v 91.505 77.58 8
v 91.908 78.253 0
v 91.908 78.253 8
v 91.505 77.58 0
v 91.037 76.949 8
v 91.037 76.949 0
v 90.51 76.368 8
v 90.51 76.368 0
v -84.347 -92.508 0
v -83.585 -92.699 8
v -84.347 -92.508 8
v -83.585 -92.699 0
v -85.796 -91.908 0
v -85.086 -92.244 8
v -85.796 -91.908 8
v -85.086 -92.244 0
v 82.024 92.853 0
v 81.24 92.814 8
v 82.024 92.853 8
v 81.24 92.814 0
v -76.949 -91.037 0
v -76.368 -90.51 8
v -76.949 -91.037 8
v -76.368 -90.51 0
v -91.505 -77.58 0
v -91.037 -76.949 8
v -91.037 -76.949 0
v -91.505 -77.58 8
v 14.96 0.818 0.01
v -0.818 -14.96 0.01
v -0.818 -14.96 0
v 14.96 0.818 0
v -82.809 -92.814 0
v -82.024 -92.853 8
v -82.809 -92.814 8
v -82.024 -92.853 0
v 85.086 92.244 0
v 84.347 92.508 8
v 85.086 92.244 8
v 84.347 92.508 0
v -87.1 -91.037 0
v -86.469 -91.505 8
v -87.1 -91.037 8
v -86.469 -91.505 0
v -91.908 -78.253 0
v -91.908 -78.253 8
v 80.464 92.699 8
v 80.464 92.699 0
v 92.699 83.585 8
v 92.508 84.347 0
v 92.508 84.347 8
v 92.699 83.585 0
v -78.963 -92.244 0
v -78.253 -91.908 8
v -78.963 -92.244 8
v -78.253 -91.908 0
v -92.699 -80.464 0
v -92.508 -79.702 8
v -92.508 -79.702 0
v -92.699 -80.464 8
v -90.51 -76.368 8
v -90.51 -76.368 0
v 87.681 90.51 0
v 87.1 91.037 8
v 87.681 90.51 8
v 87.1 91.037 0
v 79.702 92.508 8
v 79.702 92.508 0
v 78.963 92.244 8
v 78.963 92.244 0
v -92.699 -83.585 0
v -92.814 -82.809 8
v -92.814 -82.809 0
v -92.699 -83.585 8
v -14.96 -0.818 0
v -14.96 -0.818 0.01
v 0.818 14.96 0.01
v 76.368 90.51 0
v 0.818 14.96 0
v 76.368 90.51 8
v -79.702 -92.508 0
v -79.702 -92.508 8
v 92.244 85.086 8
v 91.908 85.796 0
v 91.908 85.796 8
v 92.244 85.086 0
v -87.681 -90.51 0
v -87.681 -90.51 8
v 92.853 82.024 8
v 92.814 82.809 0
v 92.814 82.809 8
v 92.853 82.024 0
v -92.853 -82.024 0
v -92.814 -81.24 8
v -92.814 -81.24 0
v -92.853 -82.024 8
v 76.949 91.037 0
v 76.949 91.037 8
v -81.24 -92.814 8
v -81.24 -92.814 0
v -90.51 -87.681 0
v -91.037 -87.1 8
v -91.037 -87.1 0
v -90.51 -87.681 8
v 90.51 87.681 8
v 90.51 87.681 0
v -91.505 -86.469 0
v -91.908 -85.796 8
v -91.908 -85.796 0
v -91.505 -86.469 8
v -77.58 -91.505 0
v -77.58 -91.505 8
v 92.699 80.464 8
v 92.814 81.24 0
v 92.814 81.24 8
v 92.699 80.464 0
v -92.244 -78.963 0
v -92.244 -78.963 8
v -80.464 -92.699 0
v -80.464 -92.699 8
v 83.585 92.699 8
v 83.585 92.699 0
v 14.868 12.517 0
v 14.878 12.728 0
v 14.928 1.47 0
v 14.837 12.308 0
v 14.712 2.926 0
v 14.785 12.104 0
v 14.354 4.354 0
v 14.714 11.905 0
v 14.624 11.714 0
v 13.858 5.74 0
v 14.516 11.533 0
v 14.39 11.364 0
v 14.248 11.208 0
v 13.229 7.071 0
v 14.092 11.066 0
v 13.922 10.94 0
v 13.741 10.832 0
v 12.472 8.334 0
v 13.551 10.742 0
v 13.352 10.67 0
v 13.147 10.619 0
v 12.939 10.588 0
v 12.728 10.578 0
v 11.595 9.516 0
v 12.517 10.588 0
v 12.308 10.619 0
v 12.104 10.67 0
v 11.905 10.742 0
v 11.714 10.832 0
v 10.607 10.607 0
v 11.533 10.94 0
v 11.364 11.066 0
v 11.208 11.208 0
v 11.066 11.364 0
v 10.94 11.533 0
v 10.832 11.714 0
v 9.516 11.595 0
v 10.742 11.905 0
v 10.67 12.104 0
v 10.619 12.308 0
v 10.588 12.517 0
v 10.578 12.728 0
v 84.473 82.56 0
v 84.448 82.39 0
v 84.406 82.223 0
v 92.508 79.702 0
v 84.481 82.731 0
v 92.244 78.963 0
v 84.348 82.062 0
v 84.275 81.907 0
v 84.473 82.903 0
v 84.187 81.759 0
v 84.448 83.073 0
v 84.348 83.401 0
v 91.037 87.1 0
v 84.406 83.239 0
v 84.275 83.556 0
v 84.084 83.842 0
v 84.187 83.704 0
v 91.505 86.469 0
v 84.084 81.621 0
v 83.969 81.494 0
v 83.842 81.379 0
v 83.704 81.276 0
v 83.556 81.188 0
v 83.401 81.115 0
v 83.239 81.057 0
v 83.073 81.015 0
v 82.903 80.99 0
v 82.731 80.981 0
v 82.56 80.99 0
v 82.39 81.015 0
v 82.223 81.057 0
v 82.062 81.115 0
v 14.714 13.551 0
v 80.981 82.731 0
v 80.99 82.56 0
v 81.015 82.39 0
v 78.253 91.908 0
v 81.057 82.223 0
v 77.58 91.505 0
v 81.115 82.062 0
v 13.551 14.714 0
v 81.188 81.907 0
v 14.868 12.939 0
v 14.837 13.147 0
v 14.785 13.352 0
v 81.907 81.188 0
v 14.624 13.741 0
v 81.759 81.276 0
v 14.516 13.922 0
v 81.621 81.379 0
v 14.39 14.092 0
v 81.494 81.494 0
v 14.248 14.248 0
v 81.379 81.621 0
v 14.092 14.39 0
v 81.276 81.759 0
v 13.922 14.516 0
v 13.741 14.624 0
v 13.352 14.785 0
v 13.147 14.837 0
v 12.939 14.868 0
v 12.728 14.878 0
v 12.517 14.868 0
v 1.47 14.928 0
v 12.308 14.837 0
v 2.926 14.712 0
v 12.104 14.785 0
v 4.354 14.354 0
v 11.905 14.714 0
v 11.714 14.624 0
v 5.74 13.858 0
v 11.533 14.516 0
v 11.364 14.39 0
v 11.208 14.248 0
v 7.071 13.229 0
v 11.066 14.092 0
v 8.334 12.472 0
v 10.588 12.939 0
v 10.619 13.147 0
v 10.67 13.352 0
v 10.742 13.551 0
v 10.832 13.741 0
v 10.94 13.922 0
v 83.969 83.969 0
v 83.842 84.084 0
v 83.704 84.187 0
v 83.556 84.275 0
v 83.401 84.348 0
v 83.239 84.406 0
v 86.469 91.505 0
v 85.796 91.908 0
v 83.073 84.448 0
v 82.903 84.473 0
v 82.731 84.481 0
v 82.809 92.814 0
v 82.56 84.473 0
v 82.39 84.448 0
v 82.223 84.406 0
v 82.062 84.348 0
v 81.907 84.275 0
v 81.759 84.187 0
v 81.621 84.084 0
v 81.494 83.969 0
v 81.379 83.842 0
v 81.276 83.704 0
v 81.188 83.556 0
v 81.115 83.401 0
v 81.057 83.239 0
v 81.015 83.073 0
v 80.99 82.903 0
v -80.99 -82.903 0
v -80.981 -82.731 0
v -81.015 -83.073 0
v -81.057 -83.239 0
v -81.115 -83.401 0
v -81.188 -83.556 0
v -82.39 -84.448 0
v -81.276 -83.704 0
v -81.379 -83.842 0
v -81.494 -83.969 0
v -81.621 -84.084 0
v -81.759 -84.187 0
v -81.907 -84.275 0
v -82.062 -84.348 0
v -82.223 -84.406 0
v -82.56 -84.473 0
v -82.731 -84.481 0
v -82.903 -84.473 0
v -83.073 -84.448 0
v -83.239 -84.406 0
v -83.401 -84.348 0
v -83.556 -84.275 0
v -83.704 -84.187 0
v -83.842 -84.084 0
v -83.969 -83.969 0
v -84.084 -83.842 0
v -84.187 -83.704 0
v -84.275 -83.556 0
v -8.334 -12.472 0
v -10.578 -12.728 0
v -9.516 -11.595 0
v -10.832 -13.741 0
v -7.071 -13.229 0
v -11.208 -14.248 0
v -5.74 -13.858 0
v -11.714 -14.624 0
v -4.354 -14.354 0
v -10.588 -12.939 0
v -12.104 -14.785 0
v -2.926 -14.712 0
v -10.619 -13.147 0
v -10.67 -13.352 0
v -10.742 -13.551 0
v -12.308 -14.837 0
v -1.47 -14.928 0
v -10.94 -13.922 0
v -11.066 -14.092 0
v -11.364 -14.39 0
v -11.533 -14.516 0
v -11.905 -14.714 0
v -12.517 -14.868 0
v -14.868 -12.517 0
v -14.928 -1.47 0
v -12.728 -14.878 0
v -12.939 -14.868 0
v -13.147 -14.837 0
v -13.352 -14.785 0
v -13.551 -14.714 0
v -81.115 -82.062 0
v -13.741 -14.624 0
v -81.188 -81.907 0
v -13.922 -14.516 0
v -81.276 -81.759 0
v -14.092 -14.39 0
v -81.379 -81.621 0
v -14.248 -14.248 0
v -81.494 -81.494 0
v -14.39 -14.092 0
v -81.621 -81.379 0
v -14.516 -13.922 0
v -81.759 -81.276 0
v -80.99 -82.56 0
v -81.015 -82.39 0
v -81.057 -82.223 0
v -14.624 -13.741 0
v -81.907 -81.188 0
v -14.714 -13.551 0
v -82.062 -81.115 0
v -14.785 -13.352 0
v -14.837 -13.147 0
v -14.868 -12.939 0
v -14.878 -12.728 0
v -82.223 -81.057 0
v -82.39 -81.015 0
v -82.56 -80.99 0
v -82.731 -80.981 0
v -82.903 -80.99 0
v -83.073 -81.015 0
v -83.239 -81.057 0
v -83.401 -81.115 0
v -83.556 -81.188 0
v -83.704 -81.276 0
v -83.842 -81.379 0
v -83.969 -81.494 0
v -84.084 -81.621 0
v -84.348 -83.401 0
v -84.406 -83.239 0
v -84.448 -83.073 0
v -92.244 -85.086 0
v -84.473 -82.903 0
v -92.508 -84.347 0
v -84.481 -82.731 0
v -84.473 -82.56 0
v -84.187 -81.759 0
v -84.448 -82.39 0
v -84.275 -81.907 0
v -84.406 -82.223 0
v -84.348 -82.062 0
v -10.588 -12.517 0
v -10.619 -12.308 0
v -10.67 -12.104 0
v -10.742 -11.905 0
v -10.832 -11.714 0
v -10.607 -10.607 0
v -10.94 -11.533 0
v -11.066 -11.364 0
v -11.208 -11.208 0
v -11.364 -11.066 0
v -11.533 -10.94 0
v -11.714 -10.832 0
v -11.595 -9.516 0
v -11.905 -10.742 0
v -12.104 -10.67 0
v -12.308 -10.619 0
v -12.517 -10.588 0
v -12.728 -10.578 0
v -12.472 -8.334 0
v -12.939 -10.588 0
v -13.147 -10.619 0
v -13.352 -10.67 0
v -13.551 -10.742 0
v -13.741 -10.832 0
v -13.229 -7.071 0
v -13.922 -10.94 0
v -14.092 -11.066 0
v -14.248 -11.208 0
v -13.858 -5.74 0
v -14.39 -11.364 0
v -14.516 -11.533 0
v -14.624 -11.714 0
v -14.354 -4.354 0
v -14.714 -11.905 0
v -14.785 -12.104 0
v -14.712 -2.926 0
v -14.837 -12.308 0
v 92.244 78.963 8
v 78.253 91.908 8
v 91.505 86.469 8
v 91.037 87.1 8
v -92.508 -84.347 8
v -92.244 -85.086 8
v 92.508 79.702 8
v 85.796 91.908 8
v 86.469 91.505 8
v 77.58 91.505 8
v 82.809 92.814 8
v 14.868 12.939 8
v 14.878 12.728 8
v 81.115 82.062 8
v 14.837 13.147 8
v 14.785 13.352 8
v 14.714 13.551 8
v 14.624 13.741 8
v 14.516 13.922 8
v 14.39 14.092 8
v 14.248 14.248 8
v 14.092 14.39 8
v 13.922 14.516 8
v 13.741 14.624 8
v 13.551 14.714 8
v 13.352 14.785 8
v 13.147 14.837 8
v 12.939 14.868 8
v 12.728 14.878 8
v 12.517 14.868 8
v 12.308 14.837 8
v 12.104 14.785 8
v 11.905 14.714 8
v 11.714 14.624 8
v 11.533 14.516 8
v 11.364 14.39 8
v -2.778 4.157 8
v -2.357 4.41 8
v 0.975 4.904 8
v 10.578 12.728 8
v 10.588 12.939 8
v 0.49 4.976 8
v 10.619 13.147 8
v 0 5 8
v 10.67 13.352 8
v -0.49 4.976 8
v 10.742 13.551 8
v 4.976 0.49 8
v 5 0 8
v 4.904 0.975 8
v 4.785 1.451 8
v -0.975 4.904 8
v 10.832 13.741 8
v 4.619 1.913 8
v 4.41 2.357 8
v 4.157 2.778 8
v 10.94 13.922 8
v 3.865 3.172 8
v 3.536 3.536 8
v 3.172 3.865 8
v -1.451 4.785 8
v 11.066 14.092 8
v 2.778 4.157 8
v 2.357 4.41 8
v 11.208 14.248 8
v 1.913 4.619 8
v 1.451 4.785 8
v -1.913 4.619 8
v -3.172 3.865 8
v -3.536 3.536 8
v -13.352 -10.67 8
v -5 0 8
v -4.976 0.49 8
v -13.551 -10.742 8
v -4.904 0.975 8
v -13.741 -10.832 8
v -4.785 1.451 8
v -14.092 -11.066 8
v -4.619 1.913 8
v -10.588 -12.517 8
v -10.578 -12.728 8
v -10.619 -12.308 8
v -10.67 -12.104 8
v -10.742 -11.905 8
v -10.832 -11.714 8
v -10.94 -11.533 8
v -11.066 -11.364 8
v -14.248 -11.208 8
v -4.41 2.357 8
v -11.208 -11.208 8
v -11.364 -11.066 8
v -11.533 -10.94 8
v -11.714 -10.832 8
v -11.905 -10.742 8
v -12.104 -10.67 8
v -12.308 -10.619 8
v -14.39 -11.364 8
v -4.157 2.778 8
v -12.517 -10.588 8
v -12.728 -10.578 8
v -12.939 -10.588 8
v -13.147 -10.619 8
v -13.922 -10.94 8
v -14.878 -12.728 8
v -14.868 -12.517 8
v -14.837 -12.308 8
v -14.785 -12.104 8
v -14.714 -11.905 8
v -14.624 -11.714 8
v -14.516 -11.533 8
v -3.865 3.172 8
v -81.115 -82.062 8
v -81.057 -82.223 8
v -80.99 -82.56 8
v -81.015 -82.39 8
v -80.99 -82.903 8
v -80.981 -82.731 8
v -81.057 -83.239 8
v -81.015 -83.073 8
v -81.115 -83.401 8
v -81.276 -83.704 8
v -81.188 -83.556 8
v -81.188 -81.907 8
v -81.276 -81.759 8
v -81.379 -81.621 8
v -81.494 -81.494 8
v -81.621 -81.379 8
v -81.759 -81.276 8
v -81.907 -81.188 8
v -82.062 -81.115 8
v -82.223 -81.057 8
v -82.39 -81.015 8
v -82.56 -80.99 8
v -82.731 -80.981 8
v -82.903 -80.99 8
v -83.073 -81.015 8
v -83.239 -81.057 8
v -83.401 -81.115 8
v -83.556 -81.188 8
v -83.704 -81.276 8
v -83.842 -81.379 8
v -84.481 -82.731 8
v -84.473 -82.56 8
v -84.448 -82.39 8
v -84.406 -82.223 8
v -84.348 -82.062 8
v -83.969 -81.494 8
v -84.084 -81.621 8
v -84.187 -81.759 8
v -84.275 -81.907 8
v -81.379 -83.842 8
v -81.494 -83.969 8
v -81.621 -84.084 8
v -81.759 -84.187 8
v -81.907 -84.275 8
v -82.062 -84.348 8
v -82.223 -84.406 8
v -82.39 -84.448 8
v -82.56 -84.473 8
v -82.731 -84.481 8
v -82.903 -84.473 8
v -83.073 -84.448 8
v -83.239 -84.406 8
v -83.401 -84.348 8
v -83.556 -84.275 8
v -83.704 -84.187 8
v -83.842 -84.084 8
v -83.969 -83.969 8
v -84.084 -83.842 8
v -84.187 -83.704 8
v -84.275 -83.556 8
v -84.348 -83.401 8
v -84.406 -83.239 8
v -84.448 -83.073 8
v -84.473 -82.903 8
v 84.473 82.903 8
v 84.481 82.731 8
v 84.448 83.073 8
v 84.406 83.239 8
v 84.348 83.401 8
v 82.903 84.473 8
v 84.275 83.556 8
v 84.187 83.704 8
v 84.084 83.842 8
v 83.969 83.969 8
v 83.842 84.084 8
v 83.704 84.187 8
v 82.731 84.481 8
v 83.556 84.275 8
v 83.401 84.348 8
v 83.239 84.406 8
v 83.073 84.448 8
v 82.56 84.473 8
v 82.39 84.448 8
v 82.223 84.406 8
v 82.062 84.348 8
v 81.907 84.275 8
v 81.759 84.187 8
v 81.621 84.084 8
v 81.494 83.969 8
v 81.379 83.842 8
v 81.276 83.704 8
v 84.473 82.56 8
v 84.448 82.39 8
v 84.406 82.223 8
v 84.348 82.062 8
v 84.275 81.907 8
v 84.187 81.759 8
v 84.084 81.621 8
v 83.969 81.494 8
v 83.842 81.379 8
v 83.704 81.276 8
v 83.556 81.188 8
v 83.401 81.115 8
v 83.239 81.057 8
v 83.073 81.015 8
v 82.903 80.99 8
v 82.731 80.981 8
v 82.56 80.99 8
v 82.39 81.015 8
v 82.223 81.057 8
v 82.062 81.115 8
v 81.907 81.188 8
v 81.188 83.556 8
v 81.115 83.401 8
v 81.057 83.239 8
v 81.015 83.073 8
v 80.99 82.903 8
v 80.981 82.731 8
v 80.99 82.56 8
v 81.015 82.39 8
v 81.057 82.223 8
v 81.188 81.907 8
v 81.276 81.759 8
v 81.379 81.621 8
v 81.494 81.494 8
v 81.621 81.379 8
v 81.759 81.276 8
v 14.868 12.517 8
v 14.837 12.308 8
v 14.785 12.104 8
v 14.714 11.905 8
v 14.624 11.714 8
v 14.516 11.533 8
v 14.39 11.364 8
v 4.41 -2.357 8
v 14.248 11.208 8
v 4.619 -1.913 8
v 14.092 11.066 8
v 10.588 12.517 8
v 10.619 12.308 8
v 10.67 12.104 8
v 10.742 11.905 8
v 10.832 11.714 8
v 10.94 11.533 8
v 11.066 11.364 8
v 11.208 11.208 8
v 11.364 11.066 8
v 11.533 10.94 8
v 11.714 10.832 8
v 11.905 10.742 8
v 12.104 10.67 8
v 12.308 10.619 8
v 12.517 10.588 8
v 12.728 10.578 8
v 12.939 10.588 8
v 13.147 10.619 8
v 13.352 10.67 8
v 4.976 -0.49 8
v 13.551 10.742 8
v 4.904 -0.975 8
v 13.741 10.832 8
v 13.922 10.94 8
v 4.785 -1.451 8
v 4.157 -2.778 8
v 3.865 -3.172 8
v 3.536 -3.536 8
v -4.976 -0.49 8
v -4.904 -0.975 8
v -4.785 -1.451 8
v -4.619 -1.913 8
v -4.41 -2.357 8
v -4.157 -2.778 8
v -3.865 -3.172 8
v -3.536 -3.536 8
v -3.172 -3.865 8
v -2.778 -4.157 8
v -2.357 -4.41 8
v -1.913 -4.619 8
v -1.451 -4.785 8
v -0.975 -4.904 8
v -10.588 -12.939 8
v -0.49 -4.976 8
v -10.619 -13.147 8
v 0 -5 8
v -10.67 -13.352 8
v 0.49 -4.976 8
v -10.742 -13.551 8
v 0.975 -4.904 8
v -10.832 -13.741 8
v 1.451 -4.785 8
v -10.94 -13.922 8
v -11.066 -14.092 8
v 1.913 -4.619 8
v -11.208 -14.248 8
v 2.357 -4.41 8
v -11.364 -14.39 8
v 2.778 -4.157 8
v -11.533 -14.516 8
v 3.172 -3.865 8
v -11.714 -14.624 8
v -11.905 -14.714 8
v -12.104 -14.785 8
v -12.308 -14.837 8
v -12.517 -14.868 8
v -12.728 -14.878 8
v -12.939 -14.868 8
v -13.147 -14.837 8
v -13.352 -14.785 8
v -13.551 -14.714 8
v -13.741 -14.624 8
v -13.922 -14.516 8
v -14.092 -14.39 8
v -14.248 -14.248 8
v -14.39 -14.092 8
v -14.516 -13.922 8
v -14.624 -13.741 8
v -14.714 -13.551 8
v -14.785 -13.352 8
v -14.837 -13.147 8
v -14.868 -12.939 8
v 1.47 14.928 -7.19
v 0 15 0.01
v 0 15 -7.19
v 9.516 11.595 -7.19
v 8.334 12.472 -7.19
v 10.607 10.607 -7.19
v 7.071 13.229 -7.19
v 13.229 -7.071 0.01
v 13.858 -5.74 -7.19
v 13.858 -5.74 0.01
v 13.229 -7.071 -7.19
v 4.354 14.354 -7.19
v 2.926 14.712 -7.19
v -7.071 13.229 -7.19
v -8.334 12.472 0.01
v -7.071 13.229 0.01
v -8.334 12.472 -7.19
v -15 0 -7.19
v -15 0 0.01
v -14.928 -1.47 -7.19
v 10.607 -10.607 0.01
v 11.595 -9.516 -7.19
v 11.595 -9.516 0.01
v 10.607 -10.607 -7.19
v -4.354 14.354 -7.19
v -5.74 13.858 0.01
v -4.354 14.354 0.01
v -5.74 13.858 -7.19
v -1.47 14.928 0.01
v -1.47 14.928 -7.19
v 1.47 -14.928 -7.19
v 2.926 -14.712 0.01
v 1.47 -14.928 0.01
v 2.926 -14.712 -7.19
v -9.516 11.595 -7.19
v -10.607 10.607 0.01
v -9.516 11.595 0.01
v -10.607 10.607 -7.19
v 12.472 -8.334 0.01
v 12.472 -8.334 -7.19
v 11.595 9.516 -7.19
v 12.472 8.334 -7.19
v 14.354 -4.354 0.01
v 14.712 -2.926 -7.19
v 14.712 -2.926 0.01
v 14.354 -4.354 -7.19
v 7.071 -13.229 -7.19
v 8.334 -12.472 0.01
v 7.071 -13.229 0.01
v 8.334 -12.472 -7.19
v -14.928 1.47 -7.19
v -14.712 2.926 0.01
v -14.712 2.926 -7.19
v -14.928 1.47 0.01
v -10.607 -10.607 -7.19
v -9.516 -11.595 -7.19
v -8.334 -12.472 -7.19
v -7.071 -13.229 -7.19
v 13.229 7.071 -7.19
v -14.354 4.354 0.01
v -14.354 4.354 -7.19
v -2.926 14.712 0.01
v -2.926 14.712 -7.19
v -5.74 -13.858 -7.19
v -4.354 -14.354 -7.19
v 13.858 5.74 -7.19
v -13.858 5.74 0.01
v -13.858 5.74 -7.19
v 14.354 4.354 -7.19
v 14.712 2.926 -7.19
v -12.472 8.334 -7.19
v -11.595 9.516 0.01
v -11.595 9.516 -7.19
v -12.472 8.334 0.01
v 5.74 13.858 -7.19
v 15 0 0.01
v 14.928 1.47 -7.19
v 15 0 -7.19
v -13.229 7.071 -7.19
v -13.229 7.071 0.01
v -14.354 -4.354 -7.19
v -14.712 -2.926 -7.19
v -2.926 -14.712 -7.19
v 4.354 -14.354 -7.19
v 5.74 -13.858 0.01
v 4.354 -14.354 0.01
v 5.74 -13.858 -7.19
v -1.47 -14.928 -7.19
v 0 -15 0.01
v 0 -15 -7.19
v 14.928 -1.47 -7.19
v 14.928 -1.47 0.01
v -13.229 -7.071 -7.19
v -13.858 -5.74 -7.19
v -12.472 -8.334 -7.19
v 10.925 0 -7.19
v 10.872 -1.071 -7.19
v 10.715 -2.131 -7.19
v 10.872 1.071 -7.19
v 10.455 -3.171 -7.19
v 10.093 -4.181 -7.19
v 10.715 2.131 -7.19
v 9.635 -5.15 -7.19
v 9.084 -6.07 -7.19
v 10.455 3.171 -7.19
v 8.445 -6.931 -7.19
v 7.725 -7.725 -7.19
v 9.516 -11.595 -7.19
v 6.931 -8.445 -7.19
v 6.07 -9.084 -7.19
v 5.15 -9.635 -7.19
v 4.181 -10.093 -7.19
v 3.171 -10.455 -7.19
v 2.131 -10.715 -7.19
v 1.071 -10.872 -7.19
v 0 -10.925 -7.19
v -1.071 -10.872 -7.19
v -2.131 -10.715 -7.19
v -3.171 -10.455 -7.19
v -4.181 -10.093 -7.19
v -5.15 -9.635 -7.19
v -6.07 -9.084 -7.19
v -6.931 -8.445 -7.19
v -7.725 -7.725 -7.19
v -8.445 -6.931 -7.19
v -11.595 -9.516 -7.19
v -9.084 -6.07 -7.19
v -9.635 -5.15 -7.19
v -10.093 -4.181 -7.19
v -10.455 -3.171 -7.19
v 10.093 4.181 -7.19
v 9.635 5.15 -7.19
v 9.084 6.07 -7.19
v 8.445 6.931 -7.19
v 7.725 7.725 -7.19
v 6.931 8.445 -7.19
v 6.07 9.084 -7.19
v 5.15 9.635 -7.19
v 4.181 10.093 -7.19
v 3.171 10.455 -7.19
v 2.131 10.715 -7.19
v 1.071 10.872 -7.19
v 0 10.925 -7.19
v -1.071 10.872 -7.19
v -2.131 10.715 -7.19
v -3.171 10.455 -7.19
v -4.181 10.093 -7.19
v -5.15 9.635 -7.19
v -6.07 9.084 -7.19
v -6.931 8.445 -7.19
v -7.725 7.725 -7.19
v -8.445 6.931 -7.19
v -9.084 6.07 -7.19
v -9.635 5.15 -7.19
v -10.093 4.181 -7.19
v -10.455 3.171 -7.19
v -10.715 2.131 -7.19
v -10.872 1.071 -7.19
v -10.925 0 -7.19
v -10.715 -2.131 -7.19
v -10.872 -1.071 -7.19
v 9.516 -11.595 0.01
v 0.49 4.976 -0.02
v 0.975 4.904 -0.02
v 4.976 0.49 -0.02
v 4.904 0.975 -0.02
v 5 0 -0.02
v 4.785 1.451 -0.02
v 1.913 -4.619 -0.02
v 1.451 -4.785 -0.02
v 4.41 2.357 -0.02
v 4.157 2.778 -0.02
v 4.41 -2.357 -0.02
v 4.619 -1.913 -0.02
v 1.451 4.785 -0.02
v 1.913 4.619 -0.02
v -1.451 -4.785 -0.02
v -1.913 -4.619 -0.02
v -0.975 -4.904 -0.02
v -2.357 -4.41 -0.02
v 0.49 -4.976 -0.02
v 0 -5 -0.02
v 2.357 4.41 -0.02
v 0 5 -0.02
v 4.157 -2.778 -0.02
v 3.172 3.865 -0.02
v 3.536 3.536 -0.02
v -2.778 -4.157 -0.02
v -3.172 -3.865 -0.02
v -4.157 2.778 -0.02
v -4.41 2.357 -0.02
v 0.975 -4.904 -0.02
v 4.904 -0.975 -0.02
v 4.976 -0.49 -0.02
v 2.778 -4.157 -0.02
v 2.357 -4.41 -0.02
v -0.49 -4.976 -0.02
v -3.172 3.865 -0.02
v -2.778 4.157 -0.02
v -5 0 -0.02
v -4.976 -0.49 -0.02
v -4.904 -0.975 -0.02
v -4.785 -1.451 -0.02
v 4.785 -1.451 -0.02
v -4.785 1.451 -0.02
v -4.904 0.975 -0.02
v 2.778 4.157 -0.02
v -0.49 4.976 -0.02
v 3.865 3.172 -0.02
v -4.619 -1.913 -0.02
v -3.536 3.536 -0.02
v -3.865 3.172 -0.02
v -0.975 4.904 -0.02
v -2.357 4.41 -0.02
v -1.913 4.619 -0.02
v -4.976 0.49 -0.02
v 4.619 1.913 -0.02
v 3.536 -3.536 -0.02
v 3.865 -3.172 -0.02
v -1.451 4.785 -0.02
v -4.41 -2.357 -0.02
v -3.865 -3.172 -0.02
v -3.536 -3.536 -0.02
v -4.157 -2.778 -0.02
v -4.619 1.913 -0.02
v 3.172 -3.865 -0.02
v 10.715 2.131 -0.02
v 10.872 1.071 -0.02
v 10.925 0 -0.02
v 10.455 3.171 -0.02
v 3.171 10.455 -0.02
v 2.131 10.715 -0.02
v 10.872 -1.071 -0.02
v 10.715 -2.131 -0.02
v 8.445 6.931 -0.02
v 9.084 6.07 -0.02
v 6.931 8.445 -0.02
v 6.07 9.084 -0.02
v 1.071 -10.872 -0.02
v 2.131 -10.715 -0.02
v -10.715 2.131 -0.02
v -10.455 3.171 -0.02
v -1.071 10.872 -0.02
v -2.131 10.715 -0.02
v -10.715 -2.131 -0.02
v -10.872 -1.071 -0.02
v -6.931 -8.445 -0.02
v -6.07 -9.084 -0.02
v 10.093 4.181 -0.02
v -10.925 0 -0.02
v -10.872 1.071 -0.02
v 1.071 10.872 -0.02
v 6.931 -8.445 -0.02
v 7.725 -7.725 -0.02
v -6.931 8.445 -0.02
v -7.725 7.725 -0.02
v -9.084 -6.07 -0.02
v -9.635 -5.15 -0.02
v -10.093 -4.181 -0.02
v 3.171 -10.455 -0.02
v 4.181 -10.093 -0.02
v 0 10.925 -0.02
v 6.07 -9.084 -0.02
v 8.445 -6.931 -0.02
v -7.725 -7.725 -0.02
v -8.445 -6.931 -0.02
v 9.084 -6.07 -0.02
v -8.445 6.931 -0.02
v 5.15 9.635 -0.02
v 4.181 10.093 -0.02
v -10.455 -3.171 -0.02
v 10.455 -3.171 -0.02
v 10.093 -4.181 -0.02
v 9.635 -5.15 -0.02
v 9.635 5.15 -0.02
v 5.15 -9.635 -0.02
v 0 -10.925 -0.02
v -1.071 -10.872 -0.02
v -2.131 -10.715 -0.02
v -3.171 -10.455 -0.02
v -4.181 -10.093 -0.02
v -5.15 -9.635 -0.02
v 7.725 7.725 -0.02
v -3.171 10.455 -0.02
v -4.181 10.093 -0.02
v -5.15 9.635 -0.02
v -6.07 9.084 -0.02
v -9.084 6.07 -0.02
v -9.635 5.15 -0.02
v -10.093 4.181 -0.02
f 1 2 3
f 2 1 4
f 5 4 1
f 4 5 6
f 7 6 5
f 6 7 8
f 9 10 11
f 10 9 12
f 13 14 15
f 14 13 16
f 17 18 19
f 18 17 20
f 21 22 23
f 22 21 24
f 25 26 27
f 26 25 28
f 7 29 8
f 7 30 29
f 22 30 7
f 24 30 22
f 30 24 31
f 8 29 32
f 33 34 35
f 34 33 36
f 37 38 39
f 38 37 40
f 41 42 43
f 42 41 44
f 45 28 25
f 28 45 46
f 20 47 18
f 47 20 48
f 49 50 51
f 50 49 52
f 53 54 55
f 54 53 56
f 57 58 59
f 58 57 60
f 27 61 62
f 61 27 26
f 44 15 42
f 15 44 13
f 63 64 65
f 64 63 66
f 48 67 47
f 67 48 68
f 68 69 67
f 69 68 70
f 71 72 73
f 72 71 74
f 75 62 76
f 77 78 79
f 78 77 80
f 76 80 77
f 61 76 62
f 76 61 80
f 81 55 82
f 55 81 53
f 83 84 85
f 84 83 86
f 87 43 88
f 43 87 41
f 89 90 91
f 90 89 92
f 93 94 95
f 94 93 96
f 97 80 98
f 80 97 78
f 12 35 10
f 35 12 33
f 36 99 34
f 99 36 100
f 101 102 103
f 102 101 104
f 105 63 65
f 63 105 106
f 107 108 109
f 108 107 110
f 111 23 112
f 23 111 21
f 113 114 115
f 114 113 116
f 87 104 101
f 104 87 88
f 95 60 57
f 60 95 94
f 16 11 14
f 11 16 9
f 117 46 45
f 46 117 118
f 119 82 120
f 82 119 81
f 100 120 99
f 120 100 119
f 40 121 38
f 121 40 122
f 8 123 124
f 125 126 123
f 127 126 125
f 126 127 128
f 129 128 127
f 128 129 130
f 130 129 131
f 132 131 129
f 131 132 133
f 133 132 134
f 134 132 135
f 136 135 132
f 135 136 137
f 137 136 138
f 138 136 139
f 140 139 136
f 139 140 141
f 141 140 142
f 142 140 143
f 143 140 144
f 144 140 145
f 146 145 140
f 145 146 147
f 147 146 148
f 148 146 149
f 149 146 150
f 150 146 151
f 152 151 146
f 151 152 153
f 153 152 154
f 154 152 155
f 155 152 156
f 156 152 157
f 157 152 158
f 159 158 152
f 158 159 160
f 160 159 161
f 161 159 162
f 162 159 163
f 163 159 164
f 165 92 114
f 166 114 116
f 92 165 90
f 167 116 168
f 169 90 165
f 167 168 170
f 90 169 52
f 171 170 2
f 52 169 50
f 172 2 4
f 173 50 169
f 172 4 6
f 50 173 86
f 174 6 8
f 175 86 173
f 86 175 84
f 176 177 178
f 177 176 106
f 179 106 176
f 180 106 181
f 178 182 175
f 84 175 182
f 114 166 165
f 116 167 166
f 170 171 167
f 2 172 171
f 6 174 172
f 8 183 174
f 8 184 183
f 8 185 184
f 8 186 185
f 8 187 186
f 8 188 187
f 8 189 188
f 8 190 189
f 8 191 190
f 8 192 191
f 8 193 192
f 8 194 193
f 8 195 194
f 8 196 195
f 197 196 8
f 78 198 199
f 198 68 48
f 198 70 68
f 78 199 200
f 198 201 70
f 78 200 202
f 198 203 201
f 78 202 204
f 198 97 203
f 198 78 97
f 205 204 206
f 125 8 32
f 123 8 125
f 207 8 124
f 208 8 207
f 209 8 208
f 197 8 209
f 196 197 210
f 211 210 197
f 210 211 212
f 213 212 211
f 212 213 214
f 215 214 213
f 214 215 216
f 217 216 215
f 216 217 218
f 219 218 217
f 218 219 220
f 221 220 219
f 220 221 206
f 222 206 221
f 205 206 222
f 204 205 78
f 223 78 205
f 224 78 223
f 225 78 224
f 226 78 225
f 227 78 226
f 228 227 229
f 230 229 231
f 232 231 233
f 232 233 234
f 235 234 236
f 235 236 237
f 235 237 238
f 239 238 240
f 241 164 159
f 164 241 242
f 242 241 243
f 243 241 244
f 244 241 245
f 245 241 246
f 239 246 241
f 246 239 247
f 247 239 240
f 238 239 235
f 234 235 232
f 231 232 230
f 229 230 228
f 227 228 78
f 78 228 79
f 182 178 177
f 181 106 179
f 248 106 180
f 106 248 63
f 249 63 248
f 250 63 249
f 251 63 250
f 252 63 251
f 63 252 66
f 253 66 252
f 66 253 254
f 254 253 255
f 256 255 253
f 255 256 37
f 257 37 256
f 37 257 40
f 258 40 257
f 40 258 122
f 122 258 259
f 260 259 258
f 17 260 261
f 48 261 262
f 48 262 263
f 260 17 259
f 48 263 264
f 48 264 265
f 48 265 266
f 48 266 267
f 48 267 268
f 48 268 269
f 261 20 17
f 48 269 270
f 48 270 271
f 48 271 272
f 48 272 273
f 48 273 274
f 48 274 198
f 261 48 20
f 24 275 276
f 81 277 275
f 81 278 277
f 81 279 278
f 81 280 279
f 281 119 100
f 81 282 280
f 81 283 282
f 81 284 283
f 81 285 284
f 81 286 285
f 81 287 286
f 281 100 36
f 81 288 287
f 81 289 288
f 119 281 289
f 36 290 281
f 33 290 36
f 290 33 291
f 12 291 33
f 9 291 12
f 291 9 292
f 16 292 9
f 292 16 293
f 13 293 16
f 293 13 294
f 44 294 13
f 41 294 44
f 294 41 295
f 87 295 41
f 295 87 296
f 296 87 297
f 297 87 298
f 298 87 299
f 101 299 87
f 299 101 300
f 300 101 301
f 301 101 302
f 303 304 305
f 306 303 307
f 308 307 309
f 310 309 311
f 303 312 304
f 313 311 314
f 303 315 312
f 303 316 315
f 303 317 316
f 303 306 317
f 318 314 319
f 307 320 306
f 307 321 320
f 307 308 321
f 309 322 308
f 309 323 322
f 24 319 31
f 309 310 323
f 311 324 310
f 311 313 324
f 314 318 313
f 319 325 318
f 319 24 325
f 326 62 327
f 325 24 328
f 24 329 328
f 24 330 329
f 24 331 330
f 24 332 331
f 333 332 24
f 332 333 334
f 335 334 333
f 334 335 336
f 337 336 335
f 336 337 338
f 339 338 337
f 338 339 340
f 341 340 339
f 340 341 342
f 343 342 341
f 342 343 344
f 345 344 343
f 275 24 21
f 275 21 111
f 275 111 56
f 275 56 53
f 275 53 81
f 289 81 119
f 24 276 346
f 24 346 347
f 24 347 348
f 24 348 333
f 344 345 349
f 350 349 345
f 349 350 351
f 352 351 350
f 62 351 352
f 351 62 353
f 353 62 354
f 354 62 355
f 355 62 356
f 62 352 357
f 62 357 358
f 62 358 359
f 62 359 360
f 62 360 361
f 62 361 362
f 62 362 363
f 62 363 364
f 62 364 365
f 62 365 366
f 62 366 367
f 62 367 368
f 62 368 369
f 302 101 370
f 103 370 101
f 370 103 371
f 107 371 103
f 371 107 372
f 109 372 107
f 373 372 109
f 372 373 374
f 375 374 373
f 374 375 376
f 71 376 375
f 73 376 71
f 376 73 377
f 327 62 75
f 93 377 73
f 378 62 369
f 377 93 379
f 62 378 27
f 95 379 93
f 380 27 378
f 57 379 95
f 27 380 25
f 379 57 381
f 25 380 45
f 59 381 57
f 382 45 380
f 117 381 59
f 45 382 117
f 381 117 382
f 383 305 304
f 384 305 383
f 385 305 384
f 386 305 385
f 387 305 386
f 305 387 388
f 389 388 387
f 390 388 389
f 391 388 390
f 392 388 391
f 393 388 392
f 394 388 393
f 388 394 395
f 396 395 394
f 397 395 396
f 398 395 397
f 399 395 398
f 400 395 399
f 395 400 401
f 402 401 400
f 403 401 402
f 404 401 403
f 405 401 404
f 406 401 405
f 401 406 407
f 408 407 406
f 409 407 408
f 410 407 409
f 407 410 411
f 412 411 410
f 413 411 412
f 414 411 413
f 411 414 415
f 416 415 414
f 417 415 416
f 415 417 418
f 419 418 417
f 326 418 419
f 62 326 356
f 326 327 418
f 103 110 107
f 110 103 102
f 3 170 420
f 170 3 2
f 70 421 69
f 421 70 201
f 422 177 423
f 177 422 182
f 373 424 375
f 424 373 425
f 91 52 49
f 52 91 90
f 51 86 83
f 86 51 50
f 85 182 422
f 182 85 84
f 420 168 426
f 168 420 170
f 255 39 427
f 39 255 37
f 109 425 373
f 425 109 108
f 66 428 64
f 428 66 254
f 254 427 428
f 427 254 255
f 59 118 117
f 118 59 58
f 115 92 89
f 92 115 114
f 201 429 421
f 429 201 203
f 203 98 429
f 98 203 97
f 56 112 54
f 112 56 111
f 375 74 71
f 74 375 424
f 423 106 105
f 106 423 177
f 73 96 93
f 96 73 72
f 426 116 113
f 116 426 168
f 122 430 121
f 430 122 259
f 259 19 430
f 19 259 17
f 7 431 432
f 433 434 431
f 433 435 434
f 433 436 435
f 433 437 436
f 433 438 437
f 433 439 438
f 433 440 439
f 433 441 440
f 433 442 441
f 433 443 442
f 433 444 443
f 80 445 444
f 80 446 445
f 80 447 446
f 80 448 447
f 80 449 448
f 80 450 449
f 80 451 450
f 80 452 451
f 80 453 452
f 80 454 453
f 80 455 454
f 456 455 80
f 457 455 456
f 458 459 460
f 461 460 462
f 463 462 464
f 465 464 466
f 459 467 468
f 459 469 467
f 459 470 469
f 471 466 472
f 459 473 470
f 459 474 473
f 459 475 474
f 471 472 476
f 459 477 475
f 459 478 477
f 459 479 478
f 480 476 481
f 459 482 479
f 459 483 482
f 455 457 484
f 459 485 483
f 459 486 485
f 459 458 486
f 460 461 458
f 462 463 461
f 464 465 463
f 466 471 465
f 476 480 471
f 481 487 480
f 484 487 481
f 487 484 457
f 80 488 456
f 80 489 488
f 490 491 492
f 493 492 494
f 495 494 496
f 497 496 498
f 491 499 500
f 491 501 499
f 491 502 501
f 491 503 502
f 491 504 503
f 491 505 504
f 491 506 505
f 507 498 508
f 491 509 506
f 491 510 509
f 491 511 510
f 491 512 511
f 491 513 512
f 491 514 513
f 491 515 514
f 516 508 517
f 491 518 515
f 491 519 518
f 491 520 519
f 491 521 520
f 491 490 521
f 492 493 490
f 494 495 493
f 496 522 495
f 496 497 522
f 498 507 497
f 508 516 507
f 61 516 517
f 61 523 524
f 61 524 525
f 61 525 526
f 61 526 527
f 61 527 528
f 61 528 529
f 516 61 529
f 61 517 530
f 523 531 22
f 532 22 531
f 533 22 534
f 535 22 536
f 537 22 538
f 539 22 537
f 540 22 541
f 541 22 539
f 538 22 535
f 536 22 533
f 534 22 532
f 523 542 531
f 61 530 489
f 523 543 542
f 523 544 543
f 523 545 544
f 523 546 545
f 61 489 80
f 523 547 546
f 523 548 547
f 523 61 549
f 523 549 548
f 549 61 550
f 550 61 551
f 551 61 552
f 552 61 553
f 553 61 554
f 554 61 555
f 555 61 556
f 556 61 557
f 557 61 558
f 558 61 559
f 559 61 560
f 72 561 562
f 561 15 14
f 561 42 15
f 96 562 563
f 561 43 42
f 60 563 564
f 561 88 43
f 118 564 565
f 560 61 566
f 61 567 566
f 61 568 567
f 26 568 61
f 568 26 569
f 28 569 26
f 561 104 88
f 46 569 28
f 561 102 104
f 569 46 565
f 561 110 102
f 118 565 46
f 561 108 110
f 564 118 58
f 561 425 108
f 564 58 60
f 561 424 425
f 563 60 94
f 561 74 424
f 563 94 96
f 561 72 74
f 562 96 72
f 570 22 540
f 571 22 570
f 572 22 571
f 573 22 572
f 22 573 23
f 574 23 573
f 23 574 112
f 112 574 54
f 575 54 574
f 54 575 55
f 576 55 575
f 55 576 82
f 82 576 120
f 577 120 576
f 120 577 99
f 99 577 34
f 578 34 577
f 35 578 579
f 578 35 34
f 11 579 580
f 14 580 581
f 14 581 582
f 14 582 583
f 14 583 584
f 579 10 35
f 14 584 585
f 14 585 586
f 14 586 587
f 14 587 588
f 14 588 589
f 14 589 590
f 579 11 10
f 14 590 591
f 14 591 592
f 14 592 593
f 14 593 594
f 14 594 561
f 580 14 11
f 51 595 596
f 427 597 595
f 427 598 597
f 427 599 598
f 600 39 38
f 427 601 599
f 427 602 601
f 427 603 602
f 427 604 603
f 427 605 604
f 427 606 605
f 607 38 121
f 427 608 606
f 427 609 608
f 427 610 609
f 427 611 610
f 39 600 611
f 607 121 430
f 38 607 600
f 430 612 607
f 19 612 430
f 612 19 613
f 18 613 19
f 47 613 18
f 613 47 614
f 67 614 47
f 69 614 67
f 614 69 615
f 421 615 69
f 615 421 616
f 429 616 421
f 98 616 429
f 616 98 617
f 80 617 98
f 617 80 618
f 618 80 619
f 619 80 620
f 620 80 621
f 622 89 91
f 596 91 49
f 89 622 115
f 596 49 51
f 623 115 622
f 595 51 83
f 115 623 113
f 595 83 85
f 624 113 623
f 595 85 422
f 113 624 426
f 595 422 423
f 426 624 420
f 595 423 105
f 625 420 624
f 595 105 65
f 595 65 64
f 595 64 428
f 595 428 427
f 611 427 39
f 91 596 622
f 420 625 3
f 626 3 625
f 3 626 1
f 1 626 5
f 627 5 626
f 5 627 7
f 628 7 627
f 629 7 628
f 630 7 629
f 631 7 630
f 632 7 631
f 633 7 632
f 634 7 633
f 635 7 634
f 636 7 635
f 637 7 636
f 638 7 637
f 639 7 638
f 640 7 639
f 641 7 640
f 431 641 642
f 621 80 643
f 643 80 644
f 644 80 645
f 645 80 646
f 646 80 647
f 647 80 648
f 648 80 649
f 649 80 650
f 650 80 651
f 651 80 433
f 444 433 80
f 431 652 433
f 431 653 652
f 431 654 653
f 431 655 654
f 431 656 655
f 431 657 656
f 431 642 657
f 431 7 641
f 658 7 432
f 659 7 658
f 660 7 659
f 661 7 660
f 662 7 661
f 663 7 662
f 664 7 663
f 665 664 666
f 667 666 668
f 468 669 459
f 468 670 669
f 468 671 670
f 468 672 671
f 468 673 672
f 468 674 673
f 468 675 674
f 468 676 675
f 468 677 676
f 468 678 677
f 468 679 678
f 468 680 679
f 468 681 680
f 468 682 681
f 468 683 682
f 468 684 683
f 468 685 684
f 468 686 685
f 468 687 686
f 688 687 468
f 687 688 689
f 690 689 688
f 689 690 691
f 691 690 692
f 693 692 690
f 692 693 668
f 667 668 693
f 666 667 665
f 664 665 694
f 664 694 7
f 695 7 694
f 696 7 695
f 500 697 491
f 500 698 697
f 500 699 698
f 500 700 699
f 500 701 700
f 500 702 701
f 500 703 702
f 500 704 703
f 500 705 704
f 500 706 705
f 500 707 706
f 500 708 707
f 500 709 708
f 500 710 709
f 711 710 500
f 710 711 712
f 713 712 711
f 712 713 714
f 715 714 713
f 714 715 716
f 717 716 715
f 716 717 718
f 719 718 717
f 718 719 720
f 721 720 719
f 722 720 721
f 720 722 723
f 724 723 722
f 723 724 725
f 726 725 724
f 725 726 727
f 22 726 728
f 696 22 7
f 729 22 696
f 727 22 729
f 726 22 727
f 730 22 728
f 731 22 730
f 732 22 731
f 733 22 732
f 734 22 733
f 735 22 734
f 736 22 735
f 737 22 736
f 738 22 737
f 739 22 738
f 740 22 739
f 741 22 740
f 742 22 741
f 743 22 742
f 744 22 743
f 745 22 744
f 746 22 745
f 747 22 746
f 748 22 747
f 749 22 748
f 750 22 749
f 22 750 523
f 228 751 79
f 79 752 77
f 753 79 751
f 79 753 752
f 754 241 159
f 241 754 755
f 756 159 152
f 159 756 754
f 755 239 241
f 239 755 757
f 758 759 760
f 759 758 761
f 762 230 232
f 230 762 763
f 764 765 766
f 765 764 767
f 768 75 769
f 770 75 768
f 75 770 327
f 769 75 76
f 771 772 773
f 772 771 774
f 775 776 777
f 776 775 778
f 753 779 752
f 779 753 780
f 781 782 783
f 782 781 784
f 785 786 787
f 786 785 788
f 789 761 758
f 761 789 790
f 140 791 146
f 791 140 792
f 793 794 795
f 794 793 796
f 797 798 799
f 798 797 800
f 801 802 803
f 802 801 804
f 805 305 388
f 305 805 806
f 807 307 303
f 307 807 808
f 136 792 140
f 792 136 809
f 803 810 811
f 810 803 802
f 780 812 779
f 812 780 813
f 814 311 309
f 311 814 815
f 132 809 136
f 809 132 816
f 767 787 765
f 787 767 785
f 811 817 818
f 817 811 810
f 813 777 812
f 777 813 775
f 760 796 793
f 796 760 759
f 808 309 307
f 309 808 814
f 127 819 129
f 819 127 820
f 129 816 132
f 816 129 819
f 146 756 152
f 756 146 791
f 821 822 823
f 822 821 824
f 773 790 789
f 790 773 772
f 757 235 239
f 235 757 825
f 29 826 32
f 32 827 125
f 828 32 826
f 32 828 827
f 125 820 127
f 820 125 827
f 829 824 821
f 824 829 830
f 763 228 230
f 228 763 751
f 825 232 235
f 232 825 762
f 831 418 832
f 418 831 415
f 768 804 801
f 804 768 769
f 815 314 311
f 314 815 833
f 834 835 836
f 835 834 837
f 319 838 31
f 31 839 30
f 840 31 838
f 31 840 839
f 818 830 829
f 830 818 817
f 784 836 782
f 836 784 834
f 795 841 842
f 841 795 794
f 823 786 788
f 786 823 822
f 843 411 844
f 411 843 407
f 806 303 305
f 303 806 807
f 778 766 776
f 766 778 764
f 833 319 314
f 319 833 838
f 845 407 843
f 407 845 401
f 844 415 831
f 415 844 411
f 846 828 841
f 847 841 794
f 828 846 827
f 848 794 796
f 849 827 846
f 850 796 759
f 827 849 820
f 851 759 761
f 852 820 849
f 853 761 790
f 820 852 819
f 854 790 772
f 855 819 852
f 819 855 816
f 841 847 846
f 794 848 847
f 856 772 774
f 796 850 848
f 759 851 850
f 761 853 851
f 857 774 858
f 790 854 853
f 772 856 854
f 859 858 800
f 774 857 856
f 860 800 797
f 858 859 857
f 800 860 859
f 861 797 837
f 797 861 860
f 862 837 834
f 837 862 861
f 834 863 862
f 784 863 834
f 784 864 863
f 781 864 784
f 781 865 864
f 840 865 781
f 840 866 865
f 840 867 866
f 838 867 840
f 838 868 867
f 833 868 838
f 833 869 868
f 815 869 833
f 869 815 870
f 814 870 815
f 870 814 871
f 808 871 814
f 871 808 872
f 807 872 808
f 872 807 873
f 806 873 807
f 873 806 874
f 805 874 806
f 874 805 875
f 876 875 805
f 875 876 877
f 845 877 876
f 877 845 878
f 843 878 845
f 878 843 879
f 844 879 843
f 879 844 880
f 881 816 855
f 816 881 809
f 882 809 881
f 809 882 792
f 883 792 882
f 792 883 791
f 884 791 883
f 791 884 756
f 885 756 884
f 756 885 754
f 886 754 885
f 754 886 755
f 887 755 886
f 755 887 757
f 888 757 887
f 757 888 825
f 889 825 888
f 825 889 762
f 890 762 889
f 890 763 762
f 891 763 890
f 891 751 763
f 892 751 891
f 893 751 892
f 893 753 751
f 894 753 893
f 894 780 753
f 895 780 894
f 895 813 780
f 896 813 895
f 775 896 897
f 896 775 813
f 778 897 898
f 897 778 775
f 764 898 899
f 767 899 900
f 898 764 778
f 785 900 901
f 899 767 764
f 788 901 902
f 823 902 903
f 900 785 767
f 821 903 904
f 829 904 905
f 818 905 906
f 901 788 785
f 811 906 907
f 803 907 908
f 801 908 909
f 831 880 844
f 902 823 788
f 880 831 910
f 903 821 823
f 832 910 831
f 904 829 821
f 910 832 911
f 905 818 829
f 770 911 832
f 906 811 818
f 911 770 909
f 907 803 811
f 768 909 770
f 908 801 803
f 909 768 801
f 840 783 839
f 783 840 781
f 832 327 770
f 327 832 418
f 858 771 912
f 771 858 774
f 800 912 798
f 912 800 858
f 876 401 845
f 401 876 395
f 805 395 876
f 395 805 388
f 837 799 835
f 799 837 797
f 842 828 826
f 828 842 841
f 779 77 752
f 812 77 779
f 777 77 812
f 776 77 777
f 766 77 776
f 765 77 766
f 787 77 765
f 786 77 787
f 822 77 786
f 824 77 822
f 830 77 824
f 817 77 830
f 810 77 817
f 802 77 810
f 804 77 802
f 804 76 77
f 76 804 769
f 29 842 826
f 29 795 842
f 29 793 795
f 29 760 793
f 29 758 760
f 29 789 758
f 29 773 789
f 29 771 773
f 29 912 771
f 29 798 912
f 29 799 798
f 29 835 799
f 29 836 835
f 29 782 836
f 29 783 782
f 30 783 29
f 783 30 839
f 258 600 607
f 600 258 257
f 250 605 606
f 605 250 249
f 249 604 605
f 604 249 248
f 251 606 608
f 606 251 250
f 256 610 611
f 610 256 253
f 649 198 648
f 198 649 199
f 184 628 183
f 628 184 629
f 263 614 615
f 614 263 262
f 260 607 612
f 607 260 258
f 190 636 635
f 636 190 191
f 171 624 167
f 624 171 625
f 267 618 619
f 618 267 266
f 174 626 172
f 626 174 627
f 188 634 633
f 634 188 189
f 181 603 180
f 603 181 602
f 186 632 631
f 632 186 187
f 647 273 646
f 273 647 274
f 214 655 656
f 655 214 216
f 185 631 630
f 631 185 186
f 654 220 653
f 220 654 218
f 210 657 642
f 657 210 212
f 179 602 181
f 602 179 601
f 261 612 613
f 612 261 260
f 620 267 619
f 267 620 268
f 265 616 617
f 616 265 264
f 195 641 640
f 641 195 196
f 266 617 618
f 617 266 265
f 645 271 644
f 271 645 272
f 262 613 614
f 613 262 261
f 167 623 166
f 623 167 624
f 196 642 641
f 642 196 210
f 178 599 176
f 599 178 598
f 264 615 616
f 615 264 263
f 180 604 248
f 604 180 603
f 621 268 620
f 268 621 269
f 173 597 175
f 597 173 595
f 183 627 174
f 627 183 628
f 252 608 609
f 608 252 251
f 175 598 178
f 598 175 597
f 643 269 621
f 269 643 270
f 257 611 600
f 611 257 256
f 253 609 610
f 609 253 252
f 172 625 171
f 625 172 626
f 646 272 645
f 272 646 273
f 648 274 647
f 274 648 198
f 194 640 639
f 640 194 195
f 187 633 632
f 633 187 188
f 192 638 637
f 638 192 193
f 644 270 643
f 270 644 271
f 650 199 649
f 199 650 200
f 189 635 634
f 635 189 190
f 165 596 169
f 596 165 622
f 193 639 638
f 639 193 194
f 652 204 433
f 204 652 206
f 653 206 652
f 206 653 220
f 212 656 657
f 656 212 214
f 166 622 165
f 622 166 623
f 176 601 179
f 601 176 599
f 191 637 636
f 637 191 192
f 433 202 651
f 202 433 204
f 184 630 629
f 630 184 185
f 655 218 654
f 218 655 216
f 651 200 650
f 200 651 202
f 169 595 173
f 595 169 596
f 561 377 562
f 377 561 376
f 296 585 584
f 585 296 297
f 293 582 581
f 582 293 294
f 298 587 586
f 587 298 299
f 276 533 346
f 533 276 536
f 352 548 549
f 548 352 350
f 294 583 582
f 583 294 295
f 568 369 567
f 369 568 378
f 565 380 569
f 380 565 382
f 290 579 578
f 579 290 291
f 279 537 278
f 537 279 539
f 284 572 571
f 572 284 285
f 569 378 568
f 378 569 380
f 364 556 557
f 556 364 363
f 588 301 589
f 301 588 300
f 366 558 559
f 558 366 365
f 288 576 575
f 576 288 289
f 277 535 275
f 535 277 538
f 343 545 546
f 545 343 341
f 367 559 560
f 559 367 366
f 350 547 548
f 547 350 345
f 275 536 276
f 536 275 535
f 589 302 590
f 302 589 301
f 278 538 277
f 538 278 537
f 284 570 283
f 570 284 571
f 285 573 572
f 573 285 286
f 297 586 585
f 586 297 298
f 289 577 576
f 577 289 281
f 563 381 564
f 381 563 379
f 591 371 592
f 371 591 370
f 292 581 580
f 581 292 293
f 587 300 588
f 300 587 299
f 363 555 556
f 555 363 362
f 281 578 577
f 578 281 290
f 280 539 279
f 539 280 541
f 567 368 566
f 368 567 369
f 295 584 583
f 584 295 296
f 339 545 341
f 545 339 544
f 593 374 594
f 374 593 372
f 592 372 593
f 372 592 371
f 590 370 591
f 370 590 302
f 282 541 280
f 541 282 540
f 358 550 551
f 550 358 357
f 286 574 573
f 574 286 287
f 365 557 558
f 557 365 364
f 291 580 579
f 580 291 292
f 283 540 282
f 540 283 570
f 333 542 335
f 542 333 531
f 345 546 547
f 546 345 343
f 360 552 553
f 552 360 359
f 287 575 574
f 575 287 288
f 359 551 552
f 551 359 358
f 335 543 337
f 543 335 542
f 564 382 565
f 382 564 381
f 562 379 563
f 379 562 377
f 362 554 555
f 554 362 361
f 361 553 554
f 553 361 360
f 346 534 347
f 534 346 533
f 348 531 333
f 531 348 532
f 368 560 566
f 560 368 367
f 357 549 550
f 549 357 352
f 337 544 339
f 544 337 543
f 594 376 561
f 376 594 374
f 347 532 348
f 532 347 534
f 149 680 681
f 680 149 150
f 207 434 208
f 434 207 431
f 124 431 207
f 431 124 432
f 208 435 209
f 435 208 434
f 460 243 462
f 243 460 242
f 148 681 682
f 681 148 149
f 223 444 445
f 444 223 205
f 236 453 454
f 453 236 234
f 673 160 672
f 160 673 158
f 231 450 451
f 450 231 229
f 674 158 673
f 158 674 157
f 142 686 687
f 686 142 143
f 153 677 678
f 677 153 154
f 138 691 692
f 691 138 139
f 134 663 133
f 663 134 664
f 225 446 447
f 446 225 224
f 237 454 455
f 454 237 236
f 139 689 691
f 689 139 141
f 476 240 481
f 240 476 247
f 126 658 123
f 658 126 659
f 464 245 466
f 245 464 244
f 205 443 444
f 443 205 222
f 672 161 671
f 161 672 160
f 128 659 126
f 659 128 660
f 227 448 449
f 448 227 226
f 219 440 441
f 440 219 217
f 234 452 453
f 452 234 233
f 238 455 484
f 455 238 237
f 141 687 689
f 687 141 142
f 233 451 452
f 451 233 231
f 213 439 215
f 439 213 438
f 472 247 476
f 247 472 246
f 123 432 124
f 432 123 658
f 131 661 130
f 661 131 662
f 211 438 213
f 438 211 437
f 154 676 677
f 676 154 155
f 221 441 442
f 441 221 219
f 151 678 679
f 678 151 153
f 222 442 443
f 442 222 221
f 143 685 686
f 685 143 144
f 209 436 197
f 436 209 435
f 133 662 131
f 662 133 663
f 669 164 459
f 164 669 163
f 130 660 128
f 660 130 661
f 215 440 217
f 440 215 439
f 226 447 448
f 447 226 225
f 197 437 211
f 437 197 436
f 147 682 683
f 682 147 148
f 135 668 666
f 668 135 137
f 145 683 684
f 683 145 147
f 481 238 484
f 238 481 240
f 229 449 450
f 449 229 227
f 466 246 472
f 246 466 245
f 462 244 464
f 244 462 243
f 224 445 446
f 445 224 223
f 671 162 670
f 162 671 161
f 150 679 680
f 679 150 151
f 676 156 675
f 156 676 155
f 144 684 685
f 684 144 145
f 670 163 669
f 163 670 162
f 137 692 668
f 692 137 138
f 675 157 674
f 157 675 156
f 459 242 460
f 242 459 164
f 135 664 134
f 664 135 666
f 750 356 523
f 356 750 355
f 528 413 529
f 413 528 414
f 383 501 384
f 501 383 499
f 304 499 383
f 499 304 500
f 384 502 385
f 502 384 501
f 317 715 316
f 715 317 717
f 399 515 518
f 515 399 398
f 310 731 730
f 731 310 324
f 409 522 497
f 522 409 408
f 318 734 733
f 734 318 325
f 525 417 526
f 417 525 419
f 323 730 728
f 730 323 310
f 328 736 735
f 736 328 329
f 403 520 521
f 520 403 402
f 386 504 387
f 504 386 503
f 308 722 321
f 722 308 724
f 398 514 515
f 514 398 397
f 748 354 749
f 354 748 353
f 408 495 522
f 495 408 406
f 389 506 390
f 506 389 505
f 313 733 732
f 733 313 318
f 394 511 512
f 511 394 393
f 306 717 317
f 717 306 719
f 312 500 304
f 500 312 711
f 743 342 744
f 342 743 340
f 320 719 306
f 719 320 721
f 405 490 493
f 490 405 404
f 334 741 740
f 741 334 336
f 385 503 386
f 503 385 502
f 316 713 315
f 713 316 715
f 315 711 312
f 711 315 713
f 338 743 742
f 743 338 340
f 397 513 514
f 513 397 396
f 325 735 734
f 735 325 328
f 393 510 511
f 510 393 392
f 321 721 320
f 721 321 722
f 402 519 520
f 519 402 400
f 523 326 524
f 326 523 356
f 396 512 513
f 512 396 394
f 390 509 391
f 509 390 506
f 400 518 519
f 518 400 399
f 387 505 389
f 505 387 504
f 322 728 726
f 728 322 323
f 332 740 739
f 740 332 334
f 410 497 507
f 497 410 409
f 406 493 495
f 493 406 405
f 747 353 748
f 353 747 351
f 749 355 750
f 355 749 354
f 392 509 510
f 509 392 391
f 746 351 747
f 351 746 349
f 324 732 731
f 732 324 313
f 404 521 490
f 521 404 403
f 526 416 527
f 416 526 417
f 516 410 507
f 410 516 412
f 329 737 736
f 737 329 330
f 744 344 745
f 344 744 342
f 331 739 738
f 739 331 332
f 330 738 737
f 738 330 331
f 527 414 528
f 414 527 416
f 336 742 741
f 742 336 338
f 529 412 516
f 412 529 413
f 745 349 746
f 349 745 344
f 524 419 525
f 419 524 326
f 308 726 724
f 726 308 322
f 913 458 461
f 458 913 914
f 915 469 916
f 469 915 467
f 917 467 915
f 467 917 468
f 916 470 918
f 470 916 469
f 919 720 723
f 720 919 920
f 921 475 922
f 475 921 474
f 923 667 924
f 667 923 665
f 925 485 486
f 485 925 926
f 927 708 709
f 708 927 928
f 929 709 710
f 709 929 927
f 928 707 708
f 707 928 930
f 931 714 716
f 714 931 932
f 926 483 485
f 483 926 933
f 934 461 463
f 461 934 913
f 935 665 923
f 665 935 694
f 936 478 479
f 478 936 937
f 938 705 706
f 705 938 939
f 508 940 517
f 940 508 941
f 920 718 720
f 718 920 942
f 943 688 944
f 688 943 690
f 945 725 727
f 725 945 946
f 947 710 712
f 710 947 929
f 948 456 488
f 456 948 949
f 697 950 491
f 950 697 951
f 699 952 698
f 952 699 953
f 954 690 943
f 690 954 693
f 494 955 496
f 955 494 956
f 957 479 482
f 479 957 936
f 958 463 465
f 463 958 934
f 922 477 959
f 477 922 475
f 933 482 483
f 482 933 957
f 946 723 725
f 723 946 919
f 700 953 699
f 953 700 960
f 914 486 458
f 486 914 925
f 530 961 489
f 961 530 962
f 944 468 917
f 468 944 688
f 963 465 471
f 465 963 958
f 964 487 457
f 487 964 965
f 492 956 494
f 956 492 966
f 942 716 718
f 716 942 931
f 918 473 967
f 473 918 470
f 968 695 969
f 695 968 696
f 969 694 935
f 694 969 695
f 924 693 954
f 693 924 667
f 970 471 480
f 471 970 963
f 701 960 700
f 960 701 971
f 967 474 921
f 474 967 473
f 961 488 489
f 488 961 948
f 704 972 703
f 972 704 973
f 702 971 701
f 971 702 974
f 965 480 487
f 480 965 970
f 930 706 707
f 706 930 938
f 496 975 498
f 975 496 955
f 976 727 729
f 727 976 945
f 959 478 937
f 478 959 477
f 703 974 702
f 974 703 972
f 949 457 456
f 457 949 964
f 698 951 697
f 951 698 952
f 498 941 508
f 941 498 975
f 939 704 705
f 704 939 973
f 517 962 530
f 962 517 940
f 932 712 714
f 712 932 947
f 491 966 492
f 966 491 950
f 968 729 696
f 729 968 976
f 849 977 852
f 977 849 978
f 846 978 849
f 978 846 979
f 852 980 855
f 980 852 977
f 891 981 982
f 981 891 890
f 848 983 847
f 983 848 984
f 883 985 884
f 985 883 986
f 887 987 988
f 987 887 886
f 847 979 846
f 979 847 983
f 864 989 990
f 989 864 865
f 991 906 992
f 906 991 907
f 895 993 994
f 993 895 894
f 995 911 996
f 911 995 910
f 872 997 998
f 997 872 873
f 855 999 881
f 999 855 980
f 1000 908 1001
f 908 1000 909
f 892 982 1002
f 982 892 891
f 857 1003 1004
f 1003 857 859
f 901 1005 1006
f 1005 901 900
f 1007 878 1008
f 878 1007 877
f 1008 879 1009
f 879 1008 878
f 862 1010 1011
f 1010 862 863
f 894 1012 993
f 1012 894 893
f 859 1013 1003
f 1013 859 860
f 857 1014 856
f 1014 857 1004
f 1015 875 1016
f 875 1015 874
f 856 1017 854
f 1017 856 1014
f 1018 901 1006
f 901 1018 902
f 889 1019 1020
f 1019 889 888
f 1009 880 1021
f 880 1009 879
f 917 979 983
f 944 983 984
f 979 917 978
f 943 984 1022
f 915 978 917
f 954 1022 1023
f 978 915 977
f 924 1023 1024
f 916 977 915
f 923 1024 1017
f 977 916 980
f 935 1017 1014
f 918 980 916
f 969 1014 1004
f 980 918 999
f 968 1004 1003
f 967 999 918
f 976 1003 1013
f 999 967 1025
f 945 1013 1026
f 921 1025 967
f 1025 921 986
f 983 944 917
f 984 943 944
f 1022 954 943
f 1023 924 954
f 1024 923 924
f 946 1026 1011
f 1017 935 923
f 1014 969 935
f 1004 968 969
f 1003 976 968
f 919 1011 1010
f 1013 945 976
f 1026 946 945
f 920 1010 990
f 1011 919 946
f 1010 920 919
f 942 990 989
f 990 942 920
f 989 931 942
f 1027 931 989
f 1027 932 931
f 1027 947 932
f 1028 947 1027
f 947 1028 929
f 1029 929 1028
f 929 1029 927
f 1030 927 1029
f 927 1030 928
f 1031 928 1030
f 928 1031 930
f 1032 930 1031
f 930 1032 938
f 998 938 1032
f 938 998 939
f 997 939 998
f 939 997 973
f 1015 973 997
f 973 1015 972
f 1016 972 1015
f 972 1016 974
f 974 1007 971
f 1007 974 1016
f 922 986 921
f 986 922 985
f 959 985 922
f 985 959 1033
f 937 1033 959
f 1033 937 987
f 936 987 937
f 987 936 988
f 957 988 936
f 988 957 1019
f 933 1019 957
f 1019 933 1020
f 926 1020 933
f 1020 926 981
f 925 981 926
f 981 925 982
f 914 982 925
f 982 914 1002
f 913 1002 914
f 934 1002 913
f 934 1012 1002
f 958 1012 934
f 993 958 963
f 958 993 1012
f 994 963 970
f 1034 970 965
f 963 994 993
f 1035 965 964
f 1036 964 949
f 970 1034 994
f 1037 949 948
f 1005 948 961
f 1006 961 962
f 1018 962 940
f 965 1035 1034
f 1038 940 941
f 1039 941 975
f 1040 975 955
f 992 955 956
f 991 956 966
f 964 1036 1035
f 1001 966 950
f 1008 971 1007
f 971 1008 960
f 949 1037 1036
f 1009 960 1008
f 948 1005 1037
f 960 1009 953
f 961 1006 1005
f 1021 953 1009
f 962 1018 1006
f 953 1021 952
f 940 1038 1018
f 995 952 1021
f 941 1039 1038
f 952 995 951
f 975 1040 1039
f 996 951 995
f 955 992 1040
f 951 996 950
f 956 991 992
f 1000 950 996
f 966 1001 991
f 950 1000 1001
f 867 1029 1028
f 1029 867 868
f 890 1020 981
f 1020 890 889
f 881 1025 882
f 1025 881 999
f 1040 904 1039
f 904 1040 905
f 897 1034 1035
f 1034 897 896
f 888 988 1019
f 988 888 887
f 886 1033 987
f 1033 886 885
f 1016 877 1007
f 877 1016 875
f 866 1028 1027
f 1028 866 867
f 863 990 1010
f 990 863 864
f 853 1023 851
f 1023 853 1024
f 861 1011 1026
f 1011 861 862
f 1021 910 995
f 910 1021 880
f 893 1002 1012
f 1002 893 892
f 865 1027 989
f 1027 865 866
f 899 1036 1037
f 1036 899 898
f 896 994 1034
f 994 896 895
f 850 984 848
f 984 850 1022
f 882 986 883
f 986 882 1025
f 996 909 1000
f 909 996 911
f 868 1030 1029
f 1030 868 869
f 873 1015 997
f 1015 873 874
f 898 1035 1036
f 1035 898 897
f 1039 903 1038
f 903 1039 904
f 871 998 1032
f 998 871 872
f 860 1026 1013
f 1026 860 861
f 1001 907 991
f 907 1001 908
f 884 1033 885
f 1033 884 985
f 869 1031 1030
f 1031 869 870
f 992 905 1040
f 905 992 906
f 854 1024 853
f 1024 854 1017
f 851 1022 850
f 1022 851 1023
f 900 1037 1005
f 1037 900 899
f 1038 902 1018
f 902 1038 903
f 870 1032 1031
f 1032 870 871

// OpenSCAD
// Gen-CY — front BEARING BRIDGE (bar endbell, 2026-10-10): a 608 boss on a 20 mm wide bar that spans the
// two frame rods at 45 deg and 45+180 deg (R = flange_bolt_r). The front bridge uses the rods at 45/225 deg, the rear
// bridge the rods at 135/315 deg, so the two bridges cross at 90 deg and the stator is held at 4 points.
// A bar instead of a full disc is what lets this big-ring kit fit ONE 410 mm plate. Print flat face DOWN (boss up, no supports).
// Brace holes (temporary M4 jack rods, R = brace_r) sit on the bar axis.
include <parameters.scad>;
$fn = 64;
bar_w = 20;
bar_len = 2 * (flange_bolt_r + 9);
module bar_2d() { offset(r=8) offset(delta=-8) square([bar_len, bar_w], center=true); }
difference() {
    rotate([0, 0, 45]) union() {
        linear_extrude(endbell_thick) bar_2d();
        translate([0, 0, -bearing_h + 0.01]) cylinder(d=30, h=bearing_h);
    }
    translate([0, 0, -bearing_h - 0.1]) cylinder(d=endbell_shaft_clear, h=50);
    translate([0, 0, -bearing_h - 0.02]) cylinder(d=bearing_d, h=bearing_h);
    for (s = [0, 180]) rotate([0, 0, 45 + s]) translate([flange_bolt_r, 0, -20]) cylinder(d=m3_clear, h=60);
    for (a = brace_angles) translate([brace_r*cos(a), brace_r*sin(a), -20]) cylinder(d=brace_d, h=50);
}
